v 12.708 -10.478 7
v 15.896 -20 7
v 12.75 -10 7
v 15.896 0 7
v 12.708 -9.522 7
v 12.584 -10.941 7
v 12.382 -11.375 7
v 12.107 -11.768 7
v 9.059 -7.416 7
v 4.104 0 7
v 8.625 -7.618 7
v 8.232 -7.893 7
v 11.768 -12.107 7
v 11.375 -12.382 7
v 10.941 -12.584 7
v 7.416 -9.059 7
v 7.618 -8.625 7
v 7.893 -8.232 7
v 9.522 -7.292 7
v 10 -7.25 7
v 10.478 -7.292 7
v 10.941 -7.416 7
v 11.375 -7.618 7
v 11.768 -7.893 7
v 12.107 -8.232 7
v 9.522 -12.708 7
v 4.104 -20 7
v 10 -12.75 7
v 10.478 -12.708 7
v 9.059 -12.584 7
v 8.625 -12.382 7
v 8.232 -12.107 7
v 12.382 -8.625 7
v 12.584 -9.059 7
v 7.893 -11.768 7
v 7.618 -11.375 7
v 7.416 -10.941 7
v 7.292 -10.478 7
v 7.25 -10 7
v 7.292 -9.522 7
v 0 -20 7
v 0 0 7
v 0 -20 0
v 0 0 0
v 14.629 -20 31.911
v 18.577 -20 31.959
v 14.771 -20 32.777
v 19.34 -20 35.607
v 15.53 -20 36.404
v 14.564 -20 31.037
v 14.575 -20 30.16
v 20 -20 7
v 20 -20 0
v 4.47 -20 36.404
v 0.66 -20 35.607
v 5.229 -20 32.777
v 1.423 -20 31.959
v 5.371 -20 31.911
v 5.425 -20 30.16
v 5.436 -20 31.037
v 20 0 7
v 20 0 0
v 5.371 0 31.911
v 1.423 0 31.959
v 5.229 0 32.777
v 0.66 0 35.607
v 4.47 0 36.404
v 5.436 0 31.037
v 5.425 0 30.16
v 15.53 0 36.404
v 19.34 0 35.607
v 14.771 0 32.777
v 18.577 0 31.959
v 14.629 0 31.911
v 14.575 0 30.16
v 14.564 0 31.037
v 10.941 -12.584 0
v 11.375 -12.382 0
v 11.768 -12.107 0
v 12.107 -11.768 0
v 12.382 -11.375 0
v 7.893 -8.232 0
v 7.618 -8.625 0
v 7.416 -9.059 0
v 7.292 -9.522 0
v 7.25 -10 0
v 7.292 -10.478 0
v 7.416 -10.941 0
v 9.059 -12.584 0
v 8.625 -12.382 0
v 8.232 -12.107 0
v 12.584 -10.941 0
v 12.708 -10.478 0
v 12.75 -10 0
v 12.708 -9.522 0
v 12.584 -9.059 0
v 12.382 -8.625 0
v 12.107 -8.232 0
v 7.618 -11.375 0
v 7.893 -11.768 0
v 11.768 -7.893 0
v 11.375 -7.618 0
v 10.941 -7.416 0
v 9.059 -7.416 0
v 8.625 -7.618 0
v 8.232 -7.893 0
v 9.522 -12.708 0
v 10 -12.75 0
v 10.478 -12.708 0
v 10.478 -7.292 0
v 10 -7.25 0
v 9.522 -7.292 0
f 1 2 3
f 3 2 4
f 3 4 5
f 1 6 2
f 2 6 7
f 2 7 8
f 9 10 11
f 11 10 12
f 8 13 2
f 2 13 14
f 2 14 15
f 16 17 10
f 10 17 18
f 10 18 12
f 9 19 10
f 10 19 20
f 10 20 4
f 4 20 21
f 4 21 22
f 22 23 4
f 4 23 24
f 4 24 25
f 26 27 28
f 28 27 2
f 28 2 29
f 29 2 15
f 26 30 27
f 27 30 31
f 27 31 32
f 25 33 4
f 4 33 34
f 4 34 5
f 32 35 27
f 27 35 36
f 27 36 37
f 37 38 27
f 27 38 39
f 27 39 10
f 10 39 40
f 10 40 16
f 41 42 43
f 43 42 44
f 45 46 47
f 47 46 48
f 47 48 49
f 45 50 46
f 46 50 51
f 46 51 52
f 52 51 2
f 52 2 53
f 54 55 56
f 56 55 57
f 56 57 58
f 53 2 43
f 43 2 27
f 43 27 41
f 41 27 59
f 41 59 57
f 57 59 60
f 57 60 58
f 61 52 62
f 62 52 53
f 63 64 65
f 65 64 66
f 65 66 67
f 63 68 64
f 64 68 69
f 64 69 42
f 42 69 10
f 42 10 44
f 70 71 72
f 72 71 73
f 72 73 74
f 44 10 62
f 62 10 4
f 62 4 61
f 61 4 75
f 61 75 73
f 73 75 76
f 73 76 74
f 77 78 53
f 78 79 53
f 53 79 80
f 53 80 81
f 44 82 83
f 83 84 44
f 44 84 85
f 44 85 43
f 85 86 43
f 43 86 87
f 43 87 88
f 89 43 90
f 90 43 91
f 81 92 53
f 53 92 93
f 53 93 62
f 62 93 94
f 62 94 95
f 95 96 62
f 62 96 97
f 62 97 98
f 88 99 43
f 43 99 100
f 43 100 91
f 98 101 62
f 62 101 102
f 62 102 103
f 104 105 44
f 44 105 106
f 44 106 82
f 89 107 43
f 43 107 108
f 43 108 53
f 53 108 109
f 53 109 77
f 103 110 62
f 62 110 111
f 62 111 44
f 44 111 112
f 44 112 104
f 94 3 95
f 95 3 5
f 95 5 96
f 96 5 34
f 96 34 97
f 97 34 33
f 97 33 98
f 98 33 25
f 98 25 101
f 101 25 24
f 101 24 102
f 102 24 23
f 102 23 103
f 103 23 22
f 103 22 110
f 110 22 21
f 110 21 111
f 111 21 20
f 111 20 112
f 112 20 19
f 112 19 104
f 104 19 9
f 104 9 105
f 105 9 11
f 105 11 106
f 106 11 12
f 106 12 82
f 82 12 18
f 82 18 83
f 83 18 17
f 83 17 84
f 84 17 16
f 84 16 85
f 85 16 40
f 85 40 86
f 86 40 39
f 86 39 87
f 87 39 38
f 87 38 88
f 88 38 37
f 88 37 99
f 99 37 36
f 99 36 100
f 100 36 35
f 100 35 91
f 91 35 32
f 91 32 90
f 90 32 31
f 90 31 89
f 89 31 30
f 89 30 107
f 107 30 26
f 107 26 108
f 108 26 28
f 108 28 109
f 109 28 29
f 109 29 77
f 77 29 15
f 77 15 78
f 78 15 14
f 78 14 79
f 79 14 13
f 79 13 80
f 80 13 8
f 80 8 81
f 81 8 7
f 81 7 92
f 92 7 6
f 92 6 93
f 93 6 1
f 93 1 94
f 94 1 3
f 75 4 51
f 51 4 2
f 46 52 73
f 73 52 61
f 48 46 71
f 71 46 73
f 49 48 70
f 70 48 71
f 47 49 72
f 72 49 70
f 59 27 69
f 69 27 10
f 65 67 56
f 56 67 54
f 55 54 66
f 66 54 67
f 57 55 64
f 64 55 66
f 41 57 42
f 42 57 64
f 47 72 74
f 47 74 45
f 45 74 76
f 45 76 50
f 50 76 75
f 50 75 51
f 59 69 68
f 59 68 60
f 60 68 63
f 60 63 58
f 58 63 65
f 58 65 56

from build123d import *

# Parameters (mm, degrees)
SKETCH1_W           = 20
SKETCH1_H           = 20
BOSS_EXTRUDE1_DEPTH = 7
SKETCH2_R           = 2.75
CUT_EXTRUDE1_DEPTH  = 8
BOSS_EXTRUDE2_DEPTH = 20
FILLET1_R           = 10


with BuildPart() as part:
    # Sketch1 → Boss-Extrude1 (new body)
    with BuildSketch(Plane.XY):
        with Locations((10, -10)):
            Rectangle(SKETCH1_W, SKETCH1_H)
    extrude(amount=BOSS_EXTRUDE1_DEPTH)

    # Sketch2 → Cut-Extrude1 (cut, through all)
    with BuildSketch(Plane.XY.offset(7)):
        with Locations((10, -10)):
            Circle(SKETCH2_R)
    extrude(amount=-CUT_EXTRUDE1_DEPTH, mode=Mode.SUBTRACT)

    # Sketch3 → Boss-Extrude2 (add)
    with BuildSketch(Plane(origin=(0, 0, 0), x_dir=(1, 0, 0), z_dir=(0, 1, 0))):
        Polygon((0, -7), (1.423068417, -31.959464663), (0.659996677, -35.607013498), (4.47015192, -36.404102701), (5.5, -31.481339917), (4.104191952, -7), align=None)
        Polygon((15.895808048, -7), (20, -7), (18.576931583, -31.959464663), (19.340003323, -35.607013498), (15.52984808, -36.404102701), (14.5, -31.481339917), align=None)
    extrude(amount=-BOSS_EXTRUDE2_DEPTH)

    # Fillet1
    fillet1_edges = [part.edges().sort_by_distance(p)[0] for p in [
        (5.5, -10, 31.481339917),
        (14.5, -10, 31.481339917),
    ]]
    fillet(fillet1_edges, radius=FILLET1_R)


solid = part.part
